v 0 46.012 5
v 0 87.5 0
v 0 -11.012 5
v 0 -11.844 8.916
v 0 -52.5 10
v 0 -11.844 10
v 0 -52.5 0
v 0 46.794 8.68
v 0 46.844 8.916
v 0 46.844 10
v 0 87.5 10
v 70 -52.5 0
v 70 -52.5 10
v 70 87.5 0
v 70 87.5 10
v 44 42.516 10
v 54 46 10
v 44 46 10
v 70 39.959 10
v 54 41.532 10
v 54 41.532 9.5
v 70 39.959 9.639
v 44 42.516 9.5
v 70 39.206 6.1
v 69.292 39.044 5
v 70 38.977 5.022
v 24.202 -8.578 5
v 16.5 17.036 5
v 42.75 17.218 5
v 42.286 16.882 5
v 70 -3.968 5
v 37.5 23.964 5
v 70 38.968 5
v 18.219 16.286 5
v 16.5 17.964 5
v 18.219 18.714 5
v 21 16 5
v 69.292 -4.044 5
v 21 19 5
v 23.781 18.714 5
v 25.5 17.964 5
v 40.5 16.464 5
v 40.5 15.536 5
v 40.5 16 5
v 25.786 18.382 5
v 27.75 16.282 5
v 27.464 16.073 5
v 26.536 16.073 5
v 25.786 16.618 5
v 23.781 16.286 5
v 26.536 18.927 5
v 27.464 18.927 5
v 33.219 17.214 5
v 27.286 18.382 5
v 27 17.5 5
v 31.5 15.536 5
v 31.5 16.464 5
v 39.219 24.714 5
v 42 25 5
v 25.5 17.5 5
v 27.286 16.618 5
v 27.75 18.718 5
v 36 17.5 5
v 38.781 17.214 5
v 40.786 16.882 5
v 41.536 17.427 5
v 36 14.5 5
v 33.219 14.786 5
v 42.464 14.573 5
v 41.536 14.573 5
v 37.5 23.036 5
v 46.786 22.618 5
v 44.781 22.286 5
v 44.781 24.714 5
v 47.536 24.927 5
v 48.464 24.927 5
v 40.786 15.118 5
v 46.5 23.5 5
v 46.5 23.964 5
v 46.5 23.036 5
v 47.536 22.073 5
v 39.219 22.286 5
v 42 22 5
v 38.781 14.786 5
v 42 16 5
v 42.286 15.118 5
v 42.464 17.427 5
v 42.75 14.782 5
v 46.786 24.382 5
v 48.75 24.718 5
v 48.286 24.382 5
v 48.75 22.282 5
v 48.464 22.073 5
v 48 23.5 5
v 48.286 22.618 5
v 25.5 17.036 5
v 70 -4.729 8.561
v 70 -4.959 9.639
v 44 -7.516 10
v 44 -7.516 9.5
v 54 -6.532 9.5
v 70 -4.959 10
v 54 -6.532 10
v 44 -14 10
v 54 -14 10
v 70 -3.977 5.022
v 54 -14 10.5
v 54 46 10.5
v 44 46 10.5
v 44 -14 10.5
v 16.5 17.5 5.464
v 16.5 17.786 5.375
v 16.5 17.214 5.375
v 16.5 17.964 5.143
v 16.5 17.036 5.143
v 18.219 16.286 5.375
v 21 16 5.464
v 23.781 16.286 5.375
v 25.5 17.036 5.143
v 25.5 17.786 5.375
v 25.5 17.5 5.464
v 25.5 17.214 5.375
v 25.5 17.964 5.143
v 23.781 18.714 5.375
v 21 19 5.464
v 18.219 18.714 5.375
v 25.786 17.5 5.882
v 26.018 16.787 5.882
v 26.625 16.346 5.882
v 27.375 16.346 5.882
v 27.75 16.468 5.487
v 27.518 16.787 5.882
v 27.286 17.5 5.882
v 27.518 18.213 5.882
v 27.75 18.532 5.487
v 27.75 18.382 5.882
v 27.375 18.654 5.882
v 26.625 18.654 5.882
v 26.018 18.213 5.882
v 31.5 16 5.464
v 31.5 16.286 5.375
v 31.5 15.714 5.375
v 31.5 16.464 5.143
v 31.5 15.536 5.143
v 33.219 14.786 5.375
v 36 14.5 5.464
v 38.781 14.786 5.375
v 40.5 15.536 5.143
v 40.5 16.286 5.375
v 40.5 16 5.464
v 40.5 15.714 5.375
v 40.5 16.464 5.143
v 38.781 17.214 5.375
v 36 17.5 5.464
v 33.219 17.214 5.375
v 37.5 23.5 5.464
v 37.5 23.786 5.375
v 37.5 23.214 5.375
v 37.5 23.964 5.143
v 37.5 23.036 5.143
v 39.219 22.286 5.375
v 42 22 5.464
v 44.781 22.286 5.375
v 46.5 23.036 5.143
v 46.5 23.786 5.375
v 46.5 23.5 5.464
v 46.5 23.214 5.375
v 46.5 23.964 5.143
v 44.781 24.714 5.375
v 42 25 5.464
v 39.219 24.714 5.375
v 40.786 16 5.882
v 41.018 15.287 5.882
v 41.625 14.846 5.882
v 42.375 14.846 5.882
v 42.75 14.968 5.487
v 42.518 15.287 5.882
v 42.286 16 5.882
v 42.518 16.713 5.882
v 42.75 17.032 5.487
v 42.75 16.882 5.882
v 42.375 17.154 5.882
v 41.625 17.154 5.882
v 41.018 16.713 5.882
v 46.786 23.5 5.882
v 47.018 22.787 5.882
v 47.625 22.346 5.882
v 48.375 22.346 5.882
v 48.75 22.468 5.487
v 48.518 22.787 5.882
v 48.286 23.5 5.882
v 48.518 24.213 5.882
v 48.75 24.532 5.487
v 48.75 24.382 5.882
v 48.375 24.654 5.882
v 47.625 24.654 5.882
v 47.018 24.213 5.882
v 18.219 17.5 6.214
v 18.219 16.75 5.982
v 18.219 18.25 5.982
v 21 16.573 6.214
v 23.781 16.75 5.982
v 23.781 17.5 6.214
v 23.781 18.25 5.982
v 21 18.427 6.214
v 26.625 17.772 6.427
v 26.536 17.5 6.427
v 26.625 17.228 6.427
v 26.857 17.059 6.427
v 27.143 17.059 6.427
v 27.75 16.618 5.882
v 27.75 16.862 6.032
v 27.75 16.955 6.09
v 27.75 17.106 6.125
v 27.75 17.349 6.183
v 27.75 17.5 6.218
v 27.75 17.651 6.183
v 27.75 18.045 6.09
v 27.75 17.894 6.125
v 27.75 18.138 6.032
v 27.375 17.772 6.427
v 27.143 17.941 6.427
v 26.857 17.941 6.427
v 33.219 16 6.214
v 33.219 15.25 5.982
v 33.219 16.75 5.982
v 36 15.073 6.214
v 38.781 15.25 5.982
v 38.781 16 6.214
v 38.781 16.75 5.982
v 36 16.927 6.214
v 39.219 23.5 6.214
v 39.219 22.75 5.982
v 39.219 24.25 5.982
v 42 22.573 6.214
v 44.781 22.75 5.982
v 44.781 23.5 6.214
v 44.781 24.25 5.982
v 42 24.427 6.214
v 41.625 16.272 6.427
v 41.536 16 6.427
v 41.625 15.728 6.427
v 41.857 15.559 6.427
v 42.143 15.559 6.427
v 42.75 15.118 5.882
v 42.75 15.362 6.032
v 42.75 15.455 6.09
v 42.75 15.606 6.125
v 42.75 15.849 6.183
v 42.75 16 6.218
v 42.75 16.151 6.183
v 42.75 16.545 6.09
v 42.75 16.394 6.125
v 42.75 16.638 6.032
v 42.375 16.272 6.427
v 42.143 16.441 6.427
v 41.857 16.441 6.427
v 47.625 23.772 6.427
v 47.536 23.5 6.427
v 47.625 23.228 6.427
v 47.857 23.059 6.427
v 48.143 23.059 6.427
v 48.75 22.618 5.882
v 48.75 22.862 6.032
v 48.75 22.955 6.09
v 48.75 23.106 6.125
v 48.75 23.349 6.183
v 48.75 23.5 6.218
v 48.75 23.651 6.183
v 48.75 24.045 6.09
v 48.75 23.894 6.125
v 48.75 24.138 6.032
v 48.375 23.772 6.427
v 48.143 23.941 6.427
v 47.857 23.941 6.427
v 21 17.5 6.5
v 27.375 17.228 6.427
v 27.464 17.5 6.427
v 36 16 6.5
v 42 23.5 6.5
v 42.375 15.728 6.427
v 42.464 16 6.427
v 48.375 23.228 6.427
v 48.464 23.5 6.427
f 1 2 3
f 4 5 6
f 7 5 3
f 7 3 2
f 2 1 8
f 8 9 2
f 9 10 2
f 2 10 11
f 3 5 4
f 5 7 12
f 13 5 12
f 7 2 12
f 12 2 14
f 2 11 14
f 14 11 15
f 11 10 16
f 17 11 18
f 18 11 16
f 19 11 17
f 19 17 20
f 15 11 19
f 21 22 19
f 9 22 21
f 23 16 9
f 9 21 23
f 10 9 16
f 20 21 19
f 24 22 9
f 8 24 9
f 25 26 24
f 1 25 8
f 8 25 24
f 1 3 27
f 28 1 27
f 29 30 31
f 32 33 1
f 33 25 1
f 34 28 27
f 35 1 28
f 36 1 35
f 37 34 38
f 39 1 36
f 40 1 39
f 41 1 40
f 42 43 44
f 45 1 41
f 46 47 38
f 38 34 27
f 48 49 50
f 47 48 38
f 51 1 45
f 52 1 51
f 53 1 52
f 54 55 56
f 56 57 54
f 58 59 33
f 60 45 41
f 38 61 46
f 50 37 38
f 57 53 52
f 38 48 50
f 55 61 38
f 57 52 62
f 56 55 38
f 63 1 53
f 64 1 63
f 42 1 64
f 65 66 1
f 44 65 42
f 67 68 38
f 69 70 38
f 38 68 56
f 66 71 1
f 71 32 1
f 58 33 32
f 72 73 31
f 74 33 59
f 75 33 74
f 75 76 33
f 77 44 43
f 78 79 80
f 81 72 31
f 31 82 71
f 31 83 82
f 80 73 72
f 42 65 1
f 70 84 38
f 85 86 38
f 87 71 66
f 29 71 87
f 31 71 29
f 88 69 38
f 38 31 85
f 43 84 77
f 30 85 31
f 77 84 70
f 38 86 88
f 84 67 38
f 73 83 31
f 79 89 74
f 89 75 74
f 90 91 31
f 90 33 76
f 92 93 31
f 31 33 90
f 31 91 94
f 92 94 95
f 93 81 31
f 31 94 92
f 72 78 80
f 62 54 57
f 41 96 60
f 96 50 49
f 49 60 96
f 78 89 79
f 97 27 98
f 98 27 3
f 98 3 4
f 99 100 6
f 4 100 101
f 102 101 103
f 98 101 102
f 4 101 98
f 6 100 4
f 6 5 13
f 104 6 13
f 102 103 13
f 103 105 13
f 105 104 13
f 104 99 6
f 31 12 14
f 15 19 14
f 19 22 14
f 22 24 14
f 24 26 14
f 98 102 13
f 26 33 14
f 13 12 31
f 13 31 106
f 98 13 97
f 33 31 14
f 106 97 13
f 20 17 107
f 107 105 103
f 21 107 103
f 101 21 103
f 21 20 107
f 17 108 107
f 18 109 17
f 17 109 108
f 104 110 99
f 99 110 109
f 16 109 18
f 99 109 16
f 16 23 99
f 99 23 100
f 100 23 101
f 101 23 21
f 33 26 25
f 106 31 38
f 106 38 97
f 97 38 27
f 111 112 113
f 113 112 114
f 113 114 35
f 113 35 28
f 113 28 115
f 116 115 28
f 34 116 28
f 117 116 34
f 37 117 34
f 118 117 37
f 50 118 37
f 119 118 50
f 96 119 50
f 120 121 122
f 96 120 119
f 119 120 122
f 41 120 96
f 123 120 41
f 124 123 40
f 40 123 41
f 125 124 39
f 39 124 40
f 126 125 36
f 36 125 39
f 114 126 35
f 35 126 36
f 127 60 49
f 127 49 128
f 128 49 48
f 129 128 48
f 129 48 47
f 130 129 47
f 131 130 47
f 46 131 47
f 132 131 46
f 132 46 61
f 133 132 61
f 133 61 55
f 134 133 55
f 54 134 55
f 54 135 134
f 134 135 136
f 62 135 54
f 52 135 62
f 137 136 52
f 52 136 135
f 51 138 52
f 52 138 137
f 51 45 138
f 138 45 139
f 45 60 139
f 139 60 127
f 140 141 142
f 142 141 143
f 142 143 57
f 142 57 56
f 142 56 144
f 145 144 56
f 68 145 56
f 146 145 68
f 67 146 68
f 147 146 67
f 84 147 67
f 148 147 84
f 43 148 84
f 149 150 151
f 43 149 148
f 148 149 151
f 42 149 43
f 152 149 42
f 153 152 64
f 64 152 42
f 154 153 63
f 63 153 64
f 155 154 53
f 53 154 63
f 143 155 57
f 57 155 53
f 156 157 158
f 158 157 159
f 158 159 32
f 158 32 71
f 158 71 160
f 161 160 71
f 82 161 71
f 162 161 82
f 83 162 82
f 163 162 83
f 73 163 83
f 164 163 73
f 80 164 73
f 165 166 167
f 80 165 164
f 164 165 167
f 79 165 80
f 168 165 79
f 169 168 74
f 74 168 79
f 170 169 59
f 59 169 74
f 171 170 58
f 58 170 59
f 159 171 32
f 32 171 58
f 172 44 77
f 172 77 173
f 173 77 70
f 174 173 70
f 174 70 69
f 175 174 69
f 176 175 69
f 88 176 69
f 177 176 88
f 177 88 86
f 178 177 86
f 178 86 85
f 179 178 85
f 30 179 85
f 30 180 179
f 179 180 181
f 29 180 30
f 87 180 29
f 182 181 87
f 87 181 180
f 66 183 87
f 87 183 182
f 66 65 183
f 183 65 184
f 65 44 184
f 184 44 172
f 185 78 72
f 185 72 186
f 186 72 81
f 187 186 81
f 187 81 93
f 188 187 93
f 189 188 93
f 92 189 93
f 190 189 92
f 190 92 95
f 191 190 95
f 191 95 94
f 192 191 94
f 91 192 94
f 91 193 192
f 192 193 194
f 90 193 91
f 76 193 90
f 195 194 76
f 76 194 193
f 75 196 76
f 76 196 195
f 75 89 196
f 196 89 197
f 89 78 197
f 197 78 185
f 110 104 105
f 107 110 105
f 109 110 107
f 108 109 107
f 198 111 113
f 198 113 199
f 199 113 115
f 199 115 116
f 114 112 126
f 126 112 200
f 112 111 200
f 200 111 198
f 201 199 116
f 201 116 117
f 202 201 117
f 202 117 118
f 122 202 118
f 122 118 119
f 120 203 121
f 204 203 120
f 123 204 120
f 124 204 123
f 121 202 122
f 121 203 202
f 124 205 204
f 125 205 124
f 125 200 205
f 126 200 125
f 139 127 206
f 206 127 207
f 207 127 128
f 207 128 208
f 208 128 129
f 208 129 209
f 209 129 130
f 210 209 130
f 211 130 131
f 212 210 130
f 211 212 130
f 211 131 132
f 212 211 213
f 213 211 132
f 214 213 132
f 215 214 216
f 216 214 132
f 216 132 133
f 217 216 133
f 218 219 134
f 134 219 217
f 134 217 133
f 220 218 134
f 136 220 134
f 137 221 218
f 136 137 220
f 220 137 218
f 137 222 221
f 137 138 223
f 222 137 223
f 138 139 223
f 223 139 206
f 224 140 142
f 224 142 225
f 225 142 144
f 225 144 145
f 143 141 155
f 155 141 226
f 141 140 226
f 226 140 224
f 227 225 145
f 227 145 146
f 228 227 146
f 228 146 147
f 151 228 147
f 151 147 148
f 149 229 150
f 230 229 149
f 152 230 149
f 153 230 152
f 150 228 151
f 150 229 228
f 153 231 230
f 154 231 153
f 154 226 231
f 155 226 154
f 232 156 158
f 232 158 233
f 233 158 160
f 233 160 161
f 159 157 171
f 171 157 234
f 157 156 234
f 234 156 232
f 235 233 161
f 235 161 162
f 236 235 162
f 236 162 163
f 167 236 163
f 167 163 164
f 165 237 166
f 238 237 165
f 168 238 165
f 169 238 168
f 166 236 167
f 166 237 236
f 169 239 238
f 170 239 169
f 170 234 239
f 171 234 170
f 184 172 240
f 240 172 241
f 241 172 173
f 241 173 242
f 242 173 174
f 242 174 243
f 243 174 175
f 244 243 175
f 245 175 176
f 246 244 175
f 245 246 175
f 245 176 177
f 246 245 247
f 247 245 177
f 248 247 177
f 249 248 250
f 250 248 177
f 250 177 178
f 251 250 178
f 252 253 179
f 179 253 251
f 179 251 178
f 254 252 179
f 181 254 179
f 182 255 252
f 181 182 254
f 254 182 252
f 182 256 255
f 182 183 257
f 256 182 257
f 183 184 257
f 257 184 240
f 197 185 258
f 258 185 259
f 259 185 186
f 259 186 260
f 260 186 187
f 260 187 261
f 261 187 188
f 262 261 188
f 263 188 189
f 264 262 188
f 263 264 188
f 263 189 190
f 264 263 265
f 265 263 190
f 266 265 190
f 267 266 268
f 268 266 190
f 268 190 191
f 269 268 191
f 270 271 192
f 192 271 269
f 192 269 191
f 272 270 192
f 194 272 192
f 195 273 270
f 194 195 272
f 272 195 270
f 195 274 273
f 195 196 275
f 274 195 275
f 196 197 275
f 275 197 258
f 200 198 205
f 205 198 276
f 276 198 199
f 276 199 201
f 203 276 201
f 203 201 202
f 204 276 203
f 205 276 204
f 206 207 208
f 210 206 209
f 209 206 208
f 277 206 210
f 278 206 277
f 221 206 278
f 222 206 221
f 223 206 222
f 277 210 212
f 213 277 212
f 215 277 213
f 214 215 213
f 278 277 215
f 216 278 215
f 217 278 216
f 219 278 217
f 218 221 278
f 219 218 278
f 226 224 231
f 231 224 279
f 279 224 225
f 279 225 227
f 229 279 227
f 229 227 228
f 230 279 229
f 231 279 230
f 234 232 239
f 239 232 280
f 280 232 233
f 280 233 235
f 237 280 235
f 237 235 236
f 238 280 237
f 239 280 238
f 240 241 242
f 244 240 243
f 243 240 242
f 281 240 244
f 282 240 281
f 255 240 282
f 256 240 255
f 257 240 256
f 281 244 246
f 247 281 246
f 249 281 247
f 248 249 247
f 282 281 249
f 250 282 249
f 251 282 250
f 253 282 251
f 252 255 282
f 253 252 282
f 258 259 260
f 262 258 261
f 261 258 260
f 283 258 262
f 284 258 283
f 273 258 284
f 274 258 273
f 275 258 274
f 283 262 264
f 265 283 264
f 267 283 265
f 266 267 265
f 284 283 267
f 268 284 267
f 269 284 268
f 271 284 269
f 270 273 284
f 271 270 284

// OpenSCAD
landSize = 70;
riverSize = 30;
depth = 5;
fishSize = 3;
bridgeSize = 10;





module land(x,y,z){

translate([0,-landSize*0.75,0])
cube([landSize,landSize*2,10]);

}




module ditch(x,y,z){

rotate([0,90,0])
translate(x,y,z)
cylinder(h=landSize*1.3,r1=riverSize,r2=riverSize*0.7);
}


module water(x,y,z){

difference(){

land(0,0,0);


translate([-5,landSize*0.25,12])
ditch(0,0,0);
}

translate([0,-landSize*0.75,0])
cube([landSize,landSize*2,depth]);

}



module fish(x,y,z){

rotate([0,90,0])
resize(newsize=[fishSize,fishSize,fishSize*3]) sphere(r=3,$fn=10);
difference(){
translate([fishSize*2,0,0])
sphere(r=fishSize*0.5,$fn=10);
translate([fishSize*2.5,0,0])
sphere(r=fishSize*0.5,$fn=10);
}

}


for(i = [[landSize*0.3,landSize*0.25,depth],
		 [landSize*0.3+fishSize*7,landSize*0.25+fishSize*2,depth],
		 [landSize*0.3+fishSize*5,landSize*0.25-fishSize*0.5,depth]])
{ 
translate(i)
fish(0,0,0);
}


translate([landSize*0.7,16,10])
rotate([90,0,0])
cube([bridgeSize,1,riverSize*2],center=true);



water(0,0,0);
